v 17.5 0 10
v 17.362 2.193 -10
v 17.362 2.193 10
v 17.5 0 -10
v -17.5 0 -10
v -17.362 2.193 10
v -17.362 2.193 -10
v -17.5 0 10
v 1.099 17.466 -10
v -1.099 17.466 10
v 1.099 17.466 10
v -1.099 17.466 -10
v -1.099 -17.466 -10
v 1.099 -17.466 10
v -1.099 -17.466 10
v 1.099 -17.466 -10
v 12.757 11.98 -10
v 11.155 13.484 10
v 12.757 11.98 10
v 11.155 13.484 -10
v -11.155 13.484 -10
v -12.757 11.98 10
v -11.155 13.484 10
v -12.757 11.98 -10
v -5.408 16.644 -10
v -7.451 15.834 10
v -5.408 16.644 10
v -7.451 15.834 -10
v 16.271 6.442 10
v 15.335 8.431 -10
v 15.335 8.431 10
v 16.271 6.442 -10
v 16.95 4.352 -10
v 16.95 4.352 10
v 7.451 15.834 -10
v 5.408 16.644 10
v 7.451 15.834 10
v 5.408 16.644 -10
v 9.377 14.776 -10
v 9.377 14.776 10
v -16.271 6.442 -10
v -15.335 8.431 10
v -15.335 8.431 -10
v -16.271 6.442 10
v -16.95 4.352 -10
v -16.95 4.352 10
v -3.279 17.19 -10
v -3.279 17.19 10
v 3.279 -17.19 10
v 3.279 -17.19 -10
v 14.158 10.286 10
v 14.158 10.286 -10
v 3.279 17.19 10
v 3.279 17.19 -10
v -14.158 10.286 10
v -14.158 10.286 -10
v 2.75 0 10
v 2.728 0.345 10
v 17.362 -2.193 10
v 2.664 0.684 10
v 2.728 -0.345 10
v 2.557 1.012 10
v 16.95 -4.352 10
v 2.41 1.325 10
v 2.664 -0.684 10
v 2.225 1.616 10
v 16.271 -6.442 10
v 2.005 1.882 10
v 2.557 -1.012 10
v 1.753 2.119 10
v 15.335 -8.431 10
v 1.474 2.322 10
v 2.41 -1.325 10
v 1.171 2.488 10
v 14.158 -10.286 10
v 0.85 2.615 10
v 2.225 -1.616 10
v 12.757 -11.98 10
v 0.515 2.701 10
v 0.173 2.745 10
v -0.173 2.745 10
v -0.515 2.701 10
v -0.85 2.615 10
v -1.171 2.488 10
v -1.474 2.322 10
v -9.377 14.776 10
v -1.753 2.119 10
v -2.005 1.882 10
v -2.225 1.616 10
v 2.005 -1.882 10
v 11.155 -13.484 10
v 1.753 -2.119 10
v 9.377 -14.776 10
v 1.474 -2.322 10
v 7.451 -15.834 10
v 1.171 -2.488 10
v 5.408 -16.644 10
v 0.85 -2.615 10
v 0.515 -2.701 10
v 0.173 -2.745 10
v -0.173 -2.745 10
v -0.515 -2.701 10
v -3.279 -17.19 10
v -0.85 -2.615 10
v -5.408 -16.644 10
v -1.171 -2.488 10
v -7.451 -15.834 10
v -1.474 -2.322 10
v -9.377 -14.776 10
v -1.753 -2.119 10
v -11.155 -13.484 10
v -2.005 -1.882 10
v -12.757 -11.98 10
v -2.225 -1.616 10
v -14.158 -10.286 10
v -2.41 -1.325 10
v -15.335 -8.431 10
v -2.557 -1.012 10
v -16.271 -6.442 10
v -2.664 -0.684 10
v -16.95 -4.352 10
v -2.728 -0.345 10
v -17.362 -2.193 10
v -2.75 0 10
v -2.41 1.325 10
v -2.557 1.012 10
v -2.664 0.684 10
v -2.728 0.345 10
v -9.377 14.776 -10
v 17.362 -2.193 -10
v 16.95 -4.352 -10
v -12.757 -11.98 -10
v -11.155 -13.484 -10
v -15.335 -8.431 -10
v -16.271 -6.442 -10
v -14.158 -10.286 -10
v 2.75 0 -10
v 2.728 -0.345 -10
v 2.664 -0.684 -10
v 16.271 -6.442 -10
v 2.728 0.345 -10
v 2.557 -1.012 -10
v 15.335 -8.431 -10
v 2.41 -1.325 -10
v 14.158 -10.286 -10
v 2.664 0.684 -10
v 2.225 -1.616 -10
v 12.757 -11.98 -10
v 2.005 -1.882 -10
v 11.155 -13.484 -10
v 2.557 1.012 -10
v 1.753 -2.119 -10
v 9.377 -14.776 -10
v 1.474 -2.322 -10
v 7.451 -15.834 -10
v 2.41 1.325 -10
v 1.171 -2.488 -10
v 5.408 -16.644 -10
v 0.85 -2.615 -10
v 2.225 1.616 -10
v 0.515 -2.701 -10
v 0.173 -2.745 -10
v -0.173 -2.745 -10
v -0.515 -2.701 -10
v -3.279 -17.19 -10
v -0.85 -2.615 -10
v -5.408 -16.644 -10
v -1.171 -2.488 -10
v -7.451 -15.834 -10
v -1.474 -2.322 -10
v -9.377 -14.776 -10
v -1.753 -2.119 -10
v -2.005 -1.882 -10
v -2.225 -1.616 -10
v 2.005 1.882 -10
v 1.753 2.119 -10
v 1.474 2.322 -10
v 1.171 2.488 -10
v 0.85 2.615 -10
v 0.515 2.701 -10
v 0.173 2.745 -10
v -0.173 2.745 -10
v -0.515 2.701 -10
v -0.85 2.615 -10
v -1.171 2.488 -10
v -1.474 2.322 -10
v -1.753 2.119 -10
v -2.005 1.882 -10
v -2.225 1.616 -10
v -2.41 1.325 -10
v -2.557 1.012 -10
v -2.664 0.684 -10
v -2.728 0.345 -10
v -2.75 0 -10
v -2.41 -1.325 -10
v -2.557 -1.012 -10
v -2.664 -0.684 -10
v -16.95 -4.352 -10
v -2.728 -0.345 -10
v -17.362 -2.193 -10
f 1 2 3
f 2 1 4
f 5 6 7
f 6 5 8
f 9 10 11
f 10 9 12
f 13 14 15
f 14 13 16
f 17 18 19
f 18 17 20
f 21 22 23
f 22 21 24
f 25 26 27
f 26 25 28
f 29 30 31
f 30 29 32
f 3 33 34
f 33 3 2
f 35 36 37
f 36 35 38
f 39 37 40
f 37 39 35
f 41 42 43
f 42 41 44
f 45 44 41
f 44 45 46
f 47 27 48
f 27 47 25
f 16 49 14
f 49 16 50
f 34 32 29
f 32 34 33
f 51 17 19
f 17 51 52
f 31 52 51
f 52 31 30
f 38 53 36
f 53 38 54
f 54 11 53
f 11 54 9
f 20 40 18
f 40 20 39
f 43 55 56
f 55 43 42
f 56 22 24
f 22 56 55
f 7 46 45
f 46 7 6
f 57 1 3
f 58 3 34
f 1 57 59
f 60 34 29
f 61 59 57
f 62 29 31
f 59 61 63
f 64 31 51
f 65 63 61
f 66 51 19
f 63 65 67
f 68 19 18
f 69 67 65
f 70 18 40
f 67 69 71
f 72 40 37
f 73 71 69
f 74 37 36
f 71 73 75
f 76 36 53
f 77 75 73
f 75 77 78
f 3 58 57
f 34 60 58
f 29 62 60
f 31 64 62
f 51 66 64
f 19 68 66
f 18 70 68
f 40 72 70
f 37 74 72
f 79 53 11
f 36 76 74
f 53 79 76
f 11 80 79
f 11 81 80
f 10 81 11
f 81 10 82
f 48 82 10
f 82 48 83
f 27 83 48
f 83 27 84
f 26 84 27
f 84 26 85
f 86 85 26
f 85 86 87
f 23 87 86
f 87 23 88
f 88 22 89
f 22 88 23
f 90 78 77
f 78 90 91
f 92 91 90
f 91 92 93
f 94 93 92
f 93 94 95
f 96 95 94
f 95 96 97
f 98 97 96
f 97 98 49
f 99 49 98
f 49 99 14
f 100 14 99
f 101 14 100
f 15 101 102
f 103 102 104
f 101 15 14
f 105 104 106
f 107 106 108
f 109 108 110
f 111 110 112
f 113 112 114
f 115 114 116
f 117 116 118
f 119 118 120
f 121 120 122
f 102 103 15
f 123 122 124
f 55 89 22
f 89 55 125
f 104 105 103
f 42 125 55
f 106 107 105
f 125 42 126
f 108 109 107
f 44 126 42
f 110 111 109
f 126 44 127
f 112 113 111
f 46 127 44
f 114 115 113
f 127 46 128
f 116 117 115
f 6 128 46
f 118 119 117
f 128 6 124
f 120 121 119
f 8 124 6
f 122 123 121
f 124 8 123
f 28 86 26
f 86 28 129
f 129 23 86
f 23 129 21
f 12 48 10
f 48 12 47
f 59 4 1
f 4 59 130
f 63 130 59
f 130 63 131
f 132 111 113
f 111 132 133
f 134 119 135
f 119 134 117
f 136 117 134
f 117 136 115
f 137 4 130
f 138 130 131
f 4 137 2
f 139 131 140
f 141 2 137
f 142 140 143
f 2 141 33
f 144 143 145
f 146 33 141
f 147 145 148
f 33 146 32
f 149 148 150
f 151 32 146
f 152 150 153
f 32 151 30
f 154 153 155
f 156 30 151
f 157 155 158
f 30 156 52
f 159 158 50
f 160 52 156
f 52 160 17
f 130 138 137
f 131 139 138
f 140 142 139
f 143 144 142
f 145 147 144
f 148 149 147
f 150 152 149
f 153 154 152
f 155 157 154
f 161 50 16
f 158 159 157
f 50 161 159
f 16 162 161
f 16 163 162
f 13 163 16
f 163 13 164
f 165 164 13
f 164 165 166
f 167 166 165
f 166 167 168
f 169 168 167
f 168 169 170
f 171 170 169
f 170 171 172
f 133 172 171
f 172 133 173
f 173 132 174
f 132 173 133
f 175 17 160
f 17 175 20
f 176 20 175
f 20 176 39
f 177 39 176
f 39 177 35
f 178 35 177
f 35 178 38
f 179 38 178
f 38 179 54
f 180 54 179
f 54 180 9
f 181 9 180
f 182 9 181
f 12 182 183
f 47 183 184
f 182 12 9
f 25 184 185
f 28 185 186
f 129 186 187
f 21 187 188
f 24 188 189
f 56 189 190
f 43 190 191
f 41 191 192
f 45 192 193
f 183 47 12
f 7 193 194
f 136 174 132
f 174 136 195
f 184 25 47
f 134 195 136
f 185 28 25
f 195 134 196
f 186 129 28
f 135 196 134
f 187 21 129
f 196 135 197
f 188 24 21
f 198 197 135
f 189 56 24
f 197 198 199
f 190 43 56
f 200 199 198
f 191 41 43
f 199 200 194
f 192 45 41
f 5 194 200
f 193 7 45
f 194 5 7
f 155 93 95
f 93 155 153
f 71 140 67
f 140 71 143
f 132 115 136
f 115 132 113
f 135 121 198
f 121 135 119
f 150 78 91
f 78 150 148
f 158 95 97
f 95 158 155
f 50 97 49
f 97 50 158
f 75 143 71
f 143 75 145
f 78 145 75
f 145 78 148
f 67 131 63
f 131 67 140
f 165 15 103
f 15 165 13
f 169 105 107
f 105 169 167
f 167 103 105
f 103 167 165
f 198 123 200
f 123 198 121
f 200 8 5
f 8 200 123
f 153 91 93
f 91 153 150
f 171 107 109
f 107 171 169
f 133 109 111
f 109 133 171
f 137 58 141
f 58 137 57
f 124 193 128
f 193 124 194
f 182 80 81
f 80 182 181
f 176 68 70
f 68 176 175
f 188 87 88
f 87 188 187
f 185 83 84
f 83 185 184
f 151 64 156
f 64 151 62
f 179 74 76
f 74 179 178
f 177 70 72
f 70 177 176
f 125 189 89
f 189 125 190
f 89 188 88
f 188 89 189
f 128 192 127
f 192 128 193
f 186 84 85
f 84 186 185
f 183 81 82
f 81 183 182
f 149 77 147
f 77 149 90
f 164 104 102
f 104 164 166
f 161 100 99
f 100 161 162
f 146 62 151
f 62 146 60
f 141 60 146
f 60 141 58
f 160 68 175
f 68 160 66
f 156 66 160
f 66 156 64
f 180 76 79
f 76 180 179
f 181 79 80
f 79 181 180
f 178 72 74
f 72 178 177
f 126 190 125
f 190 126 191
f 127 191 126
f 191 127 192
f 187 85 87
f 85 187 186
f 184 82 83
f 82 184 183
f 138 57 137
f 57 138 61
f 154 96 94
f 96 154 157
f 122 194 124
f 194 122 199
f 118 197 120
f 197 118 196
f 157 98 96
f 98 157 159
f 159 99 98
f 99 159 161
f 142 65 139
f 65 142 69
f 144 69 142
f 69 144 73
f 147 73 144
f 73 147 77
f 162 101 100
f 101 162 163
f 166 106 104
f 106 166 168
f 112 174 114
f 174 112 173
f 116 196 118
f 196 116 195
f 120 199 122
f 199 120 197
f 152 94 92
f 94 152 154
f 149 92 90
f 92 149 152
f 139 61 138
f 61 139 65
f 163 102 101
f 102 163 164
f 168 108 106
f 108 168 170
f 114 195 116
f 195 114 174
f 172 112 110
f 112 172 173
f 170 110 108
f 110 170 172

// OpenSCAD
$fn = 50;


difference() {
	union() {
		translate(v = [0, 0, -10.0000000000]) {
			cylinder(h = 20, r = 17.5000000000);
		}
	}
	union() {
		translate(v = [0, 0, -100.0000000000]) {
			cylinder(h = 200, r = 2.7500000000);
		}
	}
}
